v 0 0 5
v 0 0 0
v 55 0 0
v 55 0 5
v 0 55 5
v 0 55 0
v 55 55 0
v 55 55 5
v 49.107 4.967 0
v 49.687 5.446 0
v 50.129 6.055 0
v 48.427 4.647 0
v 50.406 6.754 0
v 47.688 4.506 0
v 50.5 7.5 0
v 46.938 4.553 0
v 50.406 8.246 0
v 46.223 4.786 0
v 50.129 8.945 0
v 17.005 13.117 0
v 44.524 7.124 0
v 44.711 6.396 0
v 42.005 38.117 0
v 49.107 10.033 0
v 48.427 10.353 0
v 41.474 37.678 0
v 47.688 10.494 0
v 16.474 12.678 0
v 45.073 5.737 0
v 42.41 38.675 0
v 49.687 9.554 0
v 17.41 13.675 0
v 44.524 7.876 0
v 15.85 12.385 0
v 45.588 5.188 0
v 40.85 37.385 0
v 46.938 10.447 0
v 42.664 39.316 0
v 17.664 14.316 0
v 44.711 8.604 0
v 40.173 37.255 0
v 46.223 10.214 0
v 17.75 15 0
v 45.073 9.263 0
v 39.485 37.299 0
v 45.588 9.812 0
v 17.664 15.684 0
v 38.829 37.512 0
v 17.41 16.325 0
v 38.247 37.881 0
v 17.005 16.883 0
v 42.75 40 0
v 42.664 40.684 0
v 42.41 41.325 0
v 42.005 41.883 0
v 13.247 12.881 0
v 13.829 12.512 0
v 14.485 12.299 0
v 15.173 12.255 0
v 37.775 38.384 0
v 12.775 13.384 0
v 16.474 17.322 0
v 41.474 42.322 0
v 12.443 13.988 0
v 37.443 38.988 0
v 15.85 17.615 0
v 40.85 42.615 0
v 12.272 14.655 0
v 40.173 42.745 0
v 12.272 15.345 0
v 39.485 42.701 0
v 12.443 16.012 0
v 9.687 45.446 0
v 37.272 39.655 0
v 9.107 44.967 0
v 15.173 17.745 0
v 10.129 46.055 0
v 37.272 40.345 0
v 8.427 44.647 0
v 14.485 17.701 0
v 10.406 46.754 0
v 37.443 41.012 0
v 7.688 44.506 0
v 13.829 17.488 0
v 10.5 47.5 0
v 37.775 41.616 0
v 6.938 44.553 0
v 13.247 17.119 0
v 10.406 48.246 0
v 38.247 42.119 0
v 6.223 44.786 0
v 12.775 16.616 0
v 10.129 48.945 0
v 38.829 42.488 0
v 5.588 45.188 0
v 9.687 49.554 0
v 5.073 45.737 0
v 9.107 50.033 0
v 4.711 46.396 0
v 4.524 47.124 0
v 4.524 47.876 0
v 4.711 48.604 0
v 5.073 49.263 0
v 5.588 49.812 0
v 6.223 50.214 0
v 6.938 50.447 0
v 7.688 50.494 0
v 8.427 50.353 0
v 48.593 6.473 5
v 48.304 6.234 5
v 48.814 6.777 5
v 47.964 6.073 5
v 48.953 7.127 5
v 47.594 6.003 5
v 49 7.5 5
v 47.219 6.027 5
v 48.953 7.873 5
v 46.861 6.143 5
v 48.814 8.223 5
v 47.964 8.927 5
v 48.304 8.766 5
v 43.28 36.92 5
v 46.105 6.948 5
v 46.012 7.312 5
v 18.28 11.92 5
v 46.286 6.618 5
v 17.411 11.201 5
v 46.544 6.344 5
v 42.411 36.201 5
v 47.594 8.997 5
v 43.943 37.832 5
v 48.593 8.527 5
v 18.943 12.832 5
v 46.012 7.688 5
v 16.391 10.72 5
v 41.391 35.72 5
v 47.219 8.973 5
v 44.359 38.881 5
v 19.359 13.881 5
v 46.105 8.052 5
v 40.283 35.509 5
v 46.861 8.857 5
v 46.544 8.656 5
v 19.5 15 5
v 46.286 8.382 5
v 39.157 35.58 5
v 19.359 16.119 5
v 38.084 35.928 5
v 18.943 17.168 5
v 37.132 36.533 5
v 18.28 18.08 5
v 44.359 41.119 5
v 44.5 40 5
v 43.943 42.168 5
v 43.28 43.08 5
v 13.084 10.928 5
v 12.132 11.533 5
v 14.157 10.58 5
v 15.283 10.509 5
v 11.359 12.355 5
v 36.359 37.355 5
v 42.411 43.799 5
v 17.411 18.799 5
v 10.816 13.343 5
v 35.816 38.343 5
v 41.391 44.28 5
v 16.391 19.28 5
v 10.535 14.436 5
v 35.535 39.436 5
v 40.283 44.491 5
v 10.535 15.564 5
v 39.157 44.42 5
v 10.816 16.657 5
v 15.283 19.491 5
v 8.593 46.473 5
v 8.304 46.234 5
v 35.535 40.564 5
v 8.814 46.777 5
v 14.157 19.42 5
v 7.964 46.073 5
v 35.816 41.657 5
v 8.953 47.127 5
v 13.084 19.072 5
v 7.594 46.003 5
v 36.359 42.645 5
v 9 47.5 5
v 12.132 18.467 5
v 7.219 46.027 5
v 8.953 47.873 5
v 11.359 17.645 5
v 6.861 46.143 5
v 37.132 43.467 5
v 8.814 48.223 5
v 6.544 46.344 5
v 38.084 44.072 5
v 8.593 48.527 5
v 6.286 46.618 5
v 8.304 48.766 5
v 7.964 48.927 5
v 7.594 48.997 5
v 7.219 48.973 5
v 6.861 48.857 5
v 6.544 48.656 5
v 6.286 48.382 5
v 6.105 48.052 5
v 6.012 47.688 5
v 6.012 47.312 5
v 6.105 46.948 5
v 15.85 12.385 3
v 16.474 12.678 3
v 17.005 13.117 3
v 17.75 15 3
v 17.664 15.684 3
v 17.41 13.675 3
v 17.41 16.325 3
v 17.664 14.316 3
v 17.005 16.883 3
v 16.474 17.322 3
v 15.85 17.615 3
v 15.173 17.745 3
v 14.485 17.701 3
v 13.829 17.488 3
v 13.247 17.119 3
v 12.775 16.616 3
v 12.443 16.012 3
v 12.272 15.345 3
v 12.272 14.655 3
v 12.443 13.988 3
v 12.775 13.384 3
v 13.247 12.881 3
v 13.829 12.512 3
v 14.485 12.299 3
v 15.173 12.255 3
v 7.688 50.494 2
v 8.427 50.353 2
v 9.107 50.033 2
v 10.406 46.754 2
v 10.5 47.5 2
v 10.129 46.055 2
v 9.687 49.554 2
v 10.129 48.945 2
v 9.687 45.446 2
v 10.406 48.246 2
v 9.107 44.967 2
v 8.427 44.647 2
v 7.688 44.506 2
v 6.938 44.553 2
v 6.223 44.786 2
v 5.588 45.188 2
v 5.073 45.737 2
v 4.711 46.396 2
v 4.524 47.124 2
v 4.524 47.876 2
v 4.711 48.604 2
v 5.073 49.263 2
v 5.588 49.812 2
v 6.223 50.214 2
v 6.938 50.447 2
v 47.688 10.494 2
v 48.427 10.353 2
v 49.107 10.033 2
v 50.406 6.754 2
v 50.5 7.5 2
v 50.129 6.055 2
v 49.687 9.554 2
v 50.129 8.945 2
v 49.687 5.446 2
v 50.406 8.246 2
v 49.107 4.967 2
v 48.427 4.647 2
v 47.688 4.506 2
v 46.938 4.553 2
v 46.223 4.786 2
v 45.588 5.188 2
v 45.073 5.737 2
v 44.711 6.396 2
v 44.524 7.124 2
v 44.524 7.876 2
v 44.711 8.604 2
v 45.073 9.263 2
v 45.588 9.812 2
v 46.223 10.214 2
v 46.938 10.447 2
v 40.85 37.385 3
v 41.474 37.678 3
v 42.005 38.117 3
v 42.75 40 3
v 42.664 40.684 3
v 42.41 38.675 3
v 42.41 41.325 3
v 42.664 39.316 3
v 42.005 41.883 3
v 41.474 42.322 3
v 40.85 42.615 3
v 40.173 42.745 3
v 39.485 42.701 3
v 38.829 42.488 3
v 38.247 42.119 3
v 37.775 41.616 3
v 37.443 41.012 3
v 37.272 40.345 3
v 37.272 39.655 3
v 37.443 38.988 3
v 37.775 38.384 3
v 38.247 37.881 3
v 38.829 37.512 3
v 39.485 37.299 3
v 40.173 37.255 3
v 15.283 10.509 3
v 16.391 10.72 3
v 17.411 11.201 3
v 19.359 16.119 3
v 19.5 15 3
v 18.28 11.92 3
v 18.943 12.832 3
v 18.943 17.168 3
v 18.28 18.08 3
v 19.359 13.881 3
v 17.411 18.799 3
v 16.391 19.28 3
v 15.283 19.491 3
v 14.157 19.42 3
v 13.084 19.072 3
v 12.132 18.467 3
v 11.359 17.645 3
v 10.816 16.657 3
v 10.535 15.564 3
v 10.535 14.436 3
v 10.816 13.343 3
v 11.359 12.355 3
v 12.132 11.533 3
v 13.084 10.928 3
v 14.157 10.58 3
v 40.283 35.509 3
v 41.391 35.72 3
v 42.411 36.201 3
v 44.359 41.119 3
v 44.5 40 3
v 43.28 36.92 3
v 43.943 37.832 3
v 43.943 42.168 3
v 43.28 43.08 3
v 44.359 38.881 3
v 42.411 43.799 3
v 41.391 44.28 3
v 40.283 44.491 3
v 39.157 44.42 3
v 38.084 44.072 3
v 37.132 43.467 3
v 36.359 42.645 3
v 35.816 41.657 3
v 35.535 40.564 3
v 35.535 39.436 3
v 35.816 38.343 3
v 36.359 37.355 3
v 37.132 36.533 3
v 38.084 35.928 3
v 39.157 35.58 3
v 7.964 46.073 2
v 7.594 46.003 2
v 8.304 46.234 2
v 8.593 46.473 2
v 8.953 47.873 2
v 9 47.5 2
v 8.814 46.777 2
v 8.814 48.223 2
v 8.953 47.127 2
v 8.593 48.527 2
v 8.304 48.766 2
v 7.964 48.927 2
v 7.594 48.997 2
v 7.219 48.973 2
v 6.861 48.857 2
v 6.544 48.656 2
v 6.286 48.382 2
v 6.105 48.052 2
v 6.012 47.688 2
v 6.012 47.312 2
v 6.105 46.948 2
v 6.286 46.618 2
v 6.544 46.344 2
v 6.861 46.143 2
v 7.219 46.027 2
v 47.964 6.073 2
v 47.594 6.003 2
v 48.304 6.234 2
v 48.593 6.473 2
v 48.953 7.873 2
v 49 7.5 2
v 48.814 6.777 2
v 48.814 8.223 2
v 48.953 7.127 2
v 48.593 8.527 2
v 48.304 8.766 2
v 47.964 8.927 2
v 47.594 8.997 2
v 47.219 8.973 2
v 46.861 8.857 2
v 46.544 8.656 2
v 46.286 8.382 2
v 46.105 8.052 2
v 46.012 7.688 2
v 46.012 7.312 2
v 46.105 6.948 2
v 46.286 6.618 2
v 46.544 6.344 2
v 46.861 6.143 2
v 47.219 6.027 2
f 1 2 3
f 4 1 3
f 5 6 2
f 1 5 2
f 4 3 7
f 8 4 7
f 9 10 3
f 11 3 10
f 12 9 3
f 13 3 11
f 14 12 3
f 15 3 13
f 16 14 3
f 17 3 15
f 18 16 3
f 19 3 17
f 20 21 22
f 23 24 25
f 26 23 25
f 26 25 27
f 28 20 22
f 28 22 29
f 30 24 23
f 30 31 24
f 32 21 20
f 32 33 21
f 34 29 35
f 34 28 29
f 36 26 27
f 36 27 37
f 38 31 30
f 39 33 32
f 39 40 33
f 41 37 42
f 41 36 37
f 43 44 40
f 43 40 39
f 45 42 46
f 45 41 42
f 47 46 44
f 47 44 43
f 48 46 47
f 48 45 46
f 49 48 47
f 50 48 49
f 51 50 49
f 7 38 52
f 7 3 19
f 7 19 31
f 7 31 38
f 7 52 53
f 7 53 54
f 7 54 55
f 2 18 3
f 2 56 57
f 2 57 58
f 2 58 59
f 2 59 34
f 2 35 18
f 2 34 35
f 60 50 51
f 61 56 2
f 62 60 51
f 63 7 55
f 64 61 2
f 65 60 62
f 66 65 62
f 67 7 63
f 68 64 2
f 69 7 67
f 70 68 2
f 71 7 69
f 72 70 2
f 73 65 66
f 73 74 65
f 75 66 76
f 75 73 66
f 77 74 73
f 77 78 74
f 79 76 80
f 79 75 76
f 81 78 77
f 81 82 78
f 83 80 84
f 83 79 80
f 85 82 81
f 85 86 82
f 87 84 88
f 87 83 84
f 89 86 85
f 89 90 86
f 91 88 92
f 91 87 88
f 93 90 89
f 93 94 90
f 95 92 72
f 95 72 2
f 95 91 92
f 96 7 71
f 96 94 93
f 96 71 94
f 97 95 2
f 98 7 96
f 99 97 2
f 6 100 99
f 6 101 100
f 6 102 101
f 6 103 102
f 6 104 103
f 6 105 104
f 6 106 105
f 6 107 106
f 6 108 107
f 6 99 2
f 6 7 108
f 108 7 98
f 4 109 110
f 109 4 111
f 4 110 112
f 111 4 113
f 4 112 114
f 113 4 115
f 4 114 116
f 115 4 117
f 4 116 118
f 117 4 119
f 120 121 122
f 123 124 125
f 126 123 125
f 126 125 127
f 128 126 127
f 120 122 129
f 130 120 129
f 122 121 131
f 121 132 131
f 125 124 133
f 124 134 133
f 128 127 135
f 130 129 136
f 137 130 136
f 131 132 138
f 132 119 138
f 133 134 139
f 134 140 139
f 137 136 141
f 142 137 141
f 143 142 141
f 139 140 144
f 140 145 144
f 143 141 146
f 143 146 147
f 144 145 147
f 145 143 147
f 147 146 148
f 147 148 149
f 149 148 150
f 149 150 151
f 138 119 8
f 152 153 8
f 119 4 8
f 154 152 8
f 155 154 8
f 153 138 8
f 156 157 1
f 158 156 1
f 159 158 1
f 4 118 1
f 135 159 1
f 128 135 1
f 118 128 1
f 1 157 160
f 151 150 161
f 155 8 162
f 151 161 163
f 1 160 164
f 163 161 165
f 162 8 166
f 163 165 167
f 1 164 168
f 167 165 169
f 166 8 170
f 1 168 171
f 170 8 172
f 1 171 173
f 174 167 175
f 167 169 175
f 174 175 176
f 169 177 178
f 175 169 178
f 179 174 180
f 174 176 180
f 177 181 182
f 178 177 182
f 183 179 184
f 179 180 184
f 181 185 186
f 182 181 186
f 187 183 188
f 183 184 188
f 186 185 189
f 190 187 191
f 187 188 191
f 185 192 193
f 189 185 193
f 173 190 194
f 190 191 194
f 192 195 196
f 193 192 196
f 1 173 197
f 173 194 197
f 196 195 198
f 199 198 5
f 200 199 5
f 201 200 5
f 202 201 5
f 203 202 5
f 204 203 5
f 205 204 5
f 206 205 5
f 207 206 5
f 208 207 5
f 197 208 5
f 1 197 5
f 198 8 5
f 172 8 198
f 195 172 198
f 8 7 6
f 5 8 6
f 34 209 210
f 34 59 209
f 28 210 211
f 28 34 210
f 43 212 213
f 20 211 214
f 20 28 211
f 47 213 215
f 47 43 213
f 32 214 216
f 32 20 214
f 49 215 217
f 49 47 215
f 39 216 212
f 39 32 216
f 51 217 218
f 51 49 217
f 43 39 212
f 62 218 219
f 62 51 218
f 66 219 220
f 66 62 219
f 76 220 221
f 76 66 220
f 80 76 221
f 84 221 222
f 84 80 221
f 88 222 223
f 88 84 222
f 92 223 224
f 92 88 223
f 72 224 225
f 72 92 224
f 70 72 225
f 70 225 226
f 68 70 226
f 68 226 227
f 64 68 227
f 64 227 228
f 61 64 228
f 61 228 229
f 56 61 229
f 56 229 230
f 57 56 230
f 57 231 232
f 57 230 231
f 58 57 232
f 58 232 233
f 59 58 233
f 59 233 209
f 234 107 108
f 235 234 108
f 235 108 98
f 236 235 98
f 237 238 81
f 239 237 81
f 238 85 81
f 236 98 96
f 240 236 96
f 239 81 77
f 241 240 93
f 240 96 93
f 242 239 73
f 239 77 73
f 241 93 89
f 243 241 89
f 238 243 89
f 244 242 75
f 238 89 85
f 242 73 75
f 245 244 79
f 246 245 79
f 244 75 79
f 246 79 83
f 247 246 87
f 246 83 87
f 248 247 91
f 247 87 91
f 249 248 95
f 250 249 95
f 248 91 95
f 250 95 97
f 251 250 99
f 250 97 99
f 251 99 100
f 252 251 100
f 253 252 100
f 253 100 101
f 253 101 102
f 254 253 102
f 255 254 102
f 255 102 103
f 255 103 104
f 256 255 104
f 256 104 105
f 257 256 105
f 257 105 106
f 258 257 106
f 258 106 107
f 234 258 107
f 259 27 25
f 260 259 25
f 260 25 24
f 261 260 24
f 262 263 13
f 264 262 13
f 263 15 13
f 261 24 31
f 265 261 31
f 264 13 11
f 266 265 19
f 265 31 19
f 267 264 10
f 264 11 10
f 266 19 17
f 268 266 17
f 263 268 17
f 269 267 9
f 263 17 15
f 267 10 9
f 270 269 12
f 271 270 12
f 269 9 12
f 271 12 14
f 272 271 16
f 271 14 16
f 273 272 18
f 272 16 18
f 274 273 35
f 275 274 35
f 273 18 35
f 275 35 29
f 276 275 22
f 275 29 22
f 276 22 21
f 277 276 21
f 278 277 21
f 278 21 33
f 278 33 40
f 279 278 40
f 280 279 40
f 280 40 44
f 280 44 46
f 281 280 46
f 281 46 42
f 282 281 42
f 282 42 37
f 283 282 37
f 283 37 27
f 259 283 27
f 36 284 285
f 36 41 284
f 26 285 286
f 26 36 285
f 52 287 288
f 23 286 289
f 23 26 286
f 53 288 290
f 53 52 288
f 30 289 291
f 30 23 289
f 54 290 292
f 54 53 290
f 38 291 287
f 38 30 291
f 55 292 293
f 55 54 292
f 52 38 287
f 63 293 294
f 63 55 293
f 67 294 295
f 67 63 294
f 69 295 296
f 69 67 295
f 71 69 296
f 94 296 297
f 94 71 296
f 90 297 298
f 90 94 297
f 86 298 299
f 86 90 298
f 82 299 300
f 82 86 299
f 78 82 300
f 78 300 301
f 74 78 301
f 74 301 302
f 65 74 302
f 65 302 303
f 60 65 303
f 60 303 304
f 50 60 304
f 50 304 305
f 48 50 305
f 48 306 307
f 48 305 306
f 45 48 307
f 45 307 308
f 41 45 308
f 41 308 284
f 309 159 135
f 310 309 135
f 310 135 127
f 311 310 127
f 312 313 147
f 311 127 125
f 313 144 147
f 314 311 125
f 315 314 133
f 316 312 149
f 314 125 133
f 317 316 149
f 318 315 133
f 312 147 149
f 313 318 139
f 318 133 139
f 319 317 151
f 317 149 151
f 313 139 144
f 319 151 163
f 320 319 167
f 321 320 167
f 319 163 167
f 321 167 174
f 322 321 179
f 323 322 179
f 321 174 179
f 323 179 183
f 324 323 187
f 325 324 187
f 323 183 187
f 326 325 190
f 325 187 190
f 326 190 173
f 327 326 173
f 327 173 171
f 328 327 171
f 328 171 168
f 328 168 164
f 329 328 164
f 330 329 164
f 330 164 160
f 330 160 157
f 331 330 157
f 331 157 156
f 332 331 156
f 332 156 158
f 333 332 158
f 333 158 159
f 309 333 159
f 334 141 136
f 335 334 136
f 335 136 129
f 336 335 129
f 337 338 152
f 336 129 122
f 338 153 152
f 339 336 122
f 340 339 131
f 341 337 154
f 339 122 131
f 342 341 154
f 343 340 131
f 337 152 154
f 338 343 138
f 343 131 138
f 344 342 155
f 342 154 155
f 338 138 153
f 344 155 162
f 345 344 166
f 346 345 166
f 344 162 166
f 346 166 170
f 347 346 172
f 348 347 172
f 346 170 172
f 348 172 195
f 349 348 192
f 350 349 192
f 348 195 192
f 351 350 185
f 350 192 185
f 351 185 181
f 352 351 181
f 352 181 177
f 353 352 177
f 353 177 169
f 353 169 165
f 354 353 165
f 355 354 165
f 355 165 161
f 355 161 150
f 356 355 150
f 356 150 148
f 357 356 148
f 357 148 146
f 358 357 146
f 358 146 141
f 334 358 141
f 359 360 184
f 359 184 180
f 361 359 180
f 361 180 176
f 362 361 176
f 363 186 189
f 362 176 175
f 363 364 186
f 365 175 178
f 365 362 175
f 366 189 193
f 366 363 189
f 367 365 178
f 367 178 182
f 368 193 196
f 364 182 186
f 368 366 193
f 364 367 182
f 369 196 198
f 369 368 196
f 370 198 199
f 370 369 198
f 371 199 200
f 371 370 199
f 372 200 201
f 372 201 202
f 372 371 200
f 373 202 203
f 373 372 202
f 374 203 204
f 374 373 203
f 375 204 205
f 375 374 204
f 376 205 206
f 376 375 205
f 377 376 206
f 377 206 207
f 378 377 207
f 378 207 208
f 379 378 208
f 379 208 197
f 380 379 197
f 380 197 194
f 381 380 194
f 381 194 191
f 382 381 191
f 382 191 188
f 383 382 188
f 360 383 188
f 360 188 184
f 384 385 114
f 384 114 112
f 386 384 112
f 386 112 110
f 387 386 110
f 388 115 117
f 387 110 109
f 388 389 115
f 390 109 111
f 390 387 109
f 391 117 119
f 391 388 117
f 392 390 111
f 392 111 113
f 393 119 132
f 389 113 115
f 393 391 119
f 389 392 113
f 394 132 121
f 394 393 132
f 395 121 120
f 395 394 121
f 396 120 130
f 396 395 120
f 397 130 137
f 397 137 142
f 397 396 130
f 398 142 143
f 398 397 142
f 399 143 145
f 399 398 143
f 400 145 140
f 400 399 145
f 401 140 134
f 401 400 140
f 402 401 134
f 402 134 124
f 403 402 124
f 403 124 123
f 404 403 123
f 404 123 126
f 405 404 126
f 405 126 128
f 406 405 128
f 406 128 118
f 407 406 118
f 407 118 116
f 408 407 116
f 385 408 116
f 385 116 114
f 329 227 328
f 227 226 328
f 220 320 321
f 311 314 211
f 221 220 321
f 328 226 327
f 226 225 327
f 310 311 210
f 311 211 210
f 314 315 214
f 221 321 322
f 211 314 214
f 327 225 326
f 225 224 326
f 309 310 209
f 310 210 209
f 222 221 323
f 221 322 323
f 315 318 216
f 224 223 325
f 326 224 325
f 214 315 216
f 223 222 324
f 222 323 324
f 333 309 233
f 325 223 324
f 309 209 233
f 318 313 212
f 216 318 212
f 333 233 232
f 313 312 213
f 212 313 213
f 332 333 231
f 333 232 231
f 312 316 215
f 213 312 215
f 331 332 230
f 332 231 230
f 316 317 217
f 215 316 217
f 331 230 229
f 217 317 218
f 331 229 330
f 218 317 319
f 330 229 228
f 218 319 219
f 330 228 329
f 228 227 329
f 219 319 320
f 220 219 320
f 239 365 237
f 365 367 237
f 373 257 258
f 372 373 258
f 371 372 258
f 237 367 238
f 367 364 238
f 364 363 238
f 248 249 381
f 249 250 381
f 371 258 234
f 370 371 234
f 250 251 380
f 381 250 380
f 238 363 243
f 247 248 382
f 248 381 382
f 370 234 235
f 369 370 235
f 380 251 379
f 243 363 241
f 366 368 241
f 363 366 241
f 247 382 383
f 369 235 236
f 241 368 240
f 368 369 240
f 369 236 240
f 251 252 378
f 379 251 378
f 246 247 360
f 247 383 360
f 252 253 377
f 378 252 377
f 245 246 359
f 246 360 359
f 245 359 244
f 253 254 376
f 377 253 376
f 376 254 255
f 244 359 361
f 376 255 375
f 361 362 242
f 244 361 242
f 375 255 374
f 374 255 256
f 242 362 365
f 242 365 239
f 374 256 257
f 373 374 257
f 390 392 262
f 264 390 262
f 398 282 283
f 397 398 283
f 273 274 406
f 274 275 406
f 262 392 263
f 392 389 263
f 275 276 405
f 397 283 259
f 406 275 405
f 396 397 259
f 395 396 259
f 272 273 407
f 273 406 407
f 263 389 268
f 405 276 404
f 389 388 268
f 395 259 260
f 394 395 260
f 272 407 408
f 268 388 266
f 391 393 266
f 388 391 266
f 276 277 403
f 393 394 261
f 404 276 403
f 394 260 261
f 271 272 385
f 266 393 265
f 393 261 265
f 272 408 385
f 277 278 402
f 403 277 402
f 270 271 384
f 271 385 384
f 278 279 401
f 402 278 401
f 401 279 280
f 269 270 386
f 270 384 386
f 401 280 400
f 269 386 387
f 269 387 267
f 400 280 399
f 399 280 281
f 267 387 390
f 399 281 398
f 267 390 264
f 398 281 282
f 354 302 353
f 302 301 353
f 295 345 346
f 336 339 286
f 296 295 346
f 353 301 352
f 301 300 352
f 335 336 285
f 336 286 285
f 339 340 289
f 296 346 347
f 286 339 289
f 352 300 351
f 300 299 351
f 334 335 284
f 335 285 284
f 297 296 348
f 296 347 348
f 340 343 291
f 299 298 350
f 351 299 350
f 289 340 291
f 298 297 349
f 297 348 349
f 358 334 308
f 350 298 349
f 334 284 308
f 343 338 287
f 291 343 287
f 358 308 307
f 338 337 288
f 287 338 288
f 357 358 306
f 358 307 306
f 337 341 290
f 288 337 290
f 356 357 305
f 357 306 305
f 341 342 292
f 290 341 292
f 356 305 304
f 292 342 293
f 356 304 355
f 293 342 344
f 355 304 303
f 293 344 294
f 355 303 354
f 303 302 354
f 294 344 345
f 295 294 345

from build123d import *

# Parameters (mm, degrees)
SKETCH_W        = 55
SKETCH_H        = 55
SKETCH_R        = 1.5
SKETCH_R_2      = 2.75
PAD_DEPTH       = 5
SKETCH001_R     = 4.5
POCKET_DEPTH    = 2
SKETCH002_R     = 3
POCKET001_DEPTH = 2


with BuildPart() as part:
    # Sketch → Pad (new body)
    with BuildSketch(Plane.XY):
        with Locations((27.5, 27.5)):
            Rectangle(SKETCH_W, SKETCH_H)
        with Locations((7.5, 47.5)):
            Circle(SKETCH_R, mode=Mode.SUBTRACT)
        with Locations((47.5, 7.5)):
            Circle(SKETCH_R, mode=Mode.SUBTRACT)
        with Locations((40, 40)):
            Circle(SKETCH_R_2, mode=Mode.SUBTRACT)
        with Locations((15, 15)):
            Circle(SKETCH_R_2, mode=Mode.SUBTRACT)
    extrude(amount=PAD_DEPTH)

    # Sketch001 → Pocket (cut)
    with BuildSketch(Plane.XY.offset(5)):
        with Locations((40, 40)):
            Circle(SKETCH001_R)
        with Locations((15, 15)):
            Circle(SKETCH001_R)
    extrude(amount=-POCKET_DEPTH, mode=Mode.SUBTRACT)

    # Sketch002 → Pocket001 (cut)
    with BuildSketch(Plane(origin=(0, 0, 0), x_dir=(1, 0, 0), z_dir=(0, 0, -1))):
        with Locations((47.5, -7.5)):
            Circle(SKETCH002_R)
        with Locations((7.5, -47.5)):
            Circle(SKETCH002_R)
    extrude(amount=-POCKET001_DEPTH, mode=Mode.SUBTRACT)


solid = part.part
